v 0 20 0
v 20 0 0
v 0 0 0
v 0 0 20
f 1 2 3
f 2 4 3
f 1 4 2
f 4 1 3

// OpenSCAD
// The minimal polyhedron: four points, four faces, wound clockwise seen from
// outside as OpenSCAD requires.
polyhedron(
  points = [[0,0,0], [20,0,0], [0,20,0], [0,0,20]],
  faces  = [[0,1,2], [0,3,1], [1,3,2], [0,2,3]]
);
